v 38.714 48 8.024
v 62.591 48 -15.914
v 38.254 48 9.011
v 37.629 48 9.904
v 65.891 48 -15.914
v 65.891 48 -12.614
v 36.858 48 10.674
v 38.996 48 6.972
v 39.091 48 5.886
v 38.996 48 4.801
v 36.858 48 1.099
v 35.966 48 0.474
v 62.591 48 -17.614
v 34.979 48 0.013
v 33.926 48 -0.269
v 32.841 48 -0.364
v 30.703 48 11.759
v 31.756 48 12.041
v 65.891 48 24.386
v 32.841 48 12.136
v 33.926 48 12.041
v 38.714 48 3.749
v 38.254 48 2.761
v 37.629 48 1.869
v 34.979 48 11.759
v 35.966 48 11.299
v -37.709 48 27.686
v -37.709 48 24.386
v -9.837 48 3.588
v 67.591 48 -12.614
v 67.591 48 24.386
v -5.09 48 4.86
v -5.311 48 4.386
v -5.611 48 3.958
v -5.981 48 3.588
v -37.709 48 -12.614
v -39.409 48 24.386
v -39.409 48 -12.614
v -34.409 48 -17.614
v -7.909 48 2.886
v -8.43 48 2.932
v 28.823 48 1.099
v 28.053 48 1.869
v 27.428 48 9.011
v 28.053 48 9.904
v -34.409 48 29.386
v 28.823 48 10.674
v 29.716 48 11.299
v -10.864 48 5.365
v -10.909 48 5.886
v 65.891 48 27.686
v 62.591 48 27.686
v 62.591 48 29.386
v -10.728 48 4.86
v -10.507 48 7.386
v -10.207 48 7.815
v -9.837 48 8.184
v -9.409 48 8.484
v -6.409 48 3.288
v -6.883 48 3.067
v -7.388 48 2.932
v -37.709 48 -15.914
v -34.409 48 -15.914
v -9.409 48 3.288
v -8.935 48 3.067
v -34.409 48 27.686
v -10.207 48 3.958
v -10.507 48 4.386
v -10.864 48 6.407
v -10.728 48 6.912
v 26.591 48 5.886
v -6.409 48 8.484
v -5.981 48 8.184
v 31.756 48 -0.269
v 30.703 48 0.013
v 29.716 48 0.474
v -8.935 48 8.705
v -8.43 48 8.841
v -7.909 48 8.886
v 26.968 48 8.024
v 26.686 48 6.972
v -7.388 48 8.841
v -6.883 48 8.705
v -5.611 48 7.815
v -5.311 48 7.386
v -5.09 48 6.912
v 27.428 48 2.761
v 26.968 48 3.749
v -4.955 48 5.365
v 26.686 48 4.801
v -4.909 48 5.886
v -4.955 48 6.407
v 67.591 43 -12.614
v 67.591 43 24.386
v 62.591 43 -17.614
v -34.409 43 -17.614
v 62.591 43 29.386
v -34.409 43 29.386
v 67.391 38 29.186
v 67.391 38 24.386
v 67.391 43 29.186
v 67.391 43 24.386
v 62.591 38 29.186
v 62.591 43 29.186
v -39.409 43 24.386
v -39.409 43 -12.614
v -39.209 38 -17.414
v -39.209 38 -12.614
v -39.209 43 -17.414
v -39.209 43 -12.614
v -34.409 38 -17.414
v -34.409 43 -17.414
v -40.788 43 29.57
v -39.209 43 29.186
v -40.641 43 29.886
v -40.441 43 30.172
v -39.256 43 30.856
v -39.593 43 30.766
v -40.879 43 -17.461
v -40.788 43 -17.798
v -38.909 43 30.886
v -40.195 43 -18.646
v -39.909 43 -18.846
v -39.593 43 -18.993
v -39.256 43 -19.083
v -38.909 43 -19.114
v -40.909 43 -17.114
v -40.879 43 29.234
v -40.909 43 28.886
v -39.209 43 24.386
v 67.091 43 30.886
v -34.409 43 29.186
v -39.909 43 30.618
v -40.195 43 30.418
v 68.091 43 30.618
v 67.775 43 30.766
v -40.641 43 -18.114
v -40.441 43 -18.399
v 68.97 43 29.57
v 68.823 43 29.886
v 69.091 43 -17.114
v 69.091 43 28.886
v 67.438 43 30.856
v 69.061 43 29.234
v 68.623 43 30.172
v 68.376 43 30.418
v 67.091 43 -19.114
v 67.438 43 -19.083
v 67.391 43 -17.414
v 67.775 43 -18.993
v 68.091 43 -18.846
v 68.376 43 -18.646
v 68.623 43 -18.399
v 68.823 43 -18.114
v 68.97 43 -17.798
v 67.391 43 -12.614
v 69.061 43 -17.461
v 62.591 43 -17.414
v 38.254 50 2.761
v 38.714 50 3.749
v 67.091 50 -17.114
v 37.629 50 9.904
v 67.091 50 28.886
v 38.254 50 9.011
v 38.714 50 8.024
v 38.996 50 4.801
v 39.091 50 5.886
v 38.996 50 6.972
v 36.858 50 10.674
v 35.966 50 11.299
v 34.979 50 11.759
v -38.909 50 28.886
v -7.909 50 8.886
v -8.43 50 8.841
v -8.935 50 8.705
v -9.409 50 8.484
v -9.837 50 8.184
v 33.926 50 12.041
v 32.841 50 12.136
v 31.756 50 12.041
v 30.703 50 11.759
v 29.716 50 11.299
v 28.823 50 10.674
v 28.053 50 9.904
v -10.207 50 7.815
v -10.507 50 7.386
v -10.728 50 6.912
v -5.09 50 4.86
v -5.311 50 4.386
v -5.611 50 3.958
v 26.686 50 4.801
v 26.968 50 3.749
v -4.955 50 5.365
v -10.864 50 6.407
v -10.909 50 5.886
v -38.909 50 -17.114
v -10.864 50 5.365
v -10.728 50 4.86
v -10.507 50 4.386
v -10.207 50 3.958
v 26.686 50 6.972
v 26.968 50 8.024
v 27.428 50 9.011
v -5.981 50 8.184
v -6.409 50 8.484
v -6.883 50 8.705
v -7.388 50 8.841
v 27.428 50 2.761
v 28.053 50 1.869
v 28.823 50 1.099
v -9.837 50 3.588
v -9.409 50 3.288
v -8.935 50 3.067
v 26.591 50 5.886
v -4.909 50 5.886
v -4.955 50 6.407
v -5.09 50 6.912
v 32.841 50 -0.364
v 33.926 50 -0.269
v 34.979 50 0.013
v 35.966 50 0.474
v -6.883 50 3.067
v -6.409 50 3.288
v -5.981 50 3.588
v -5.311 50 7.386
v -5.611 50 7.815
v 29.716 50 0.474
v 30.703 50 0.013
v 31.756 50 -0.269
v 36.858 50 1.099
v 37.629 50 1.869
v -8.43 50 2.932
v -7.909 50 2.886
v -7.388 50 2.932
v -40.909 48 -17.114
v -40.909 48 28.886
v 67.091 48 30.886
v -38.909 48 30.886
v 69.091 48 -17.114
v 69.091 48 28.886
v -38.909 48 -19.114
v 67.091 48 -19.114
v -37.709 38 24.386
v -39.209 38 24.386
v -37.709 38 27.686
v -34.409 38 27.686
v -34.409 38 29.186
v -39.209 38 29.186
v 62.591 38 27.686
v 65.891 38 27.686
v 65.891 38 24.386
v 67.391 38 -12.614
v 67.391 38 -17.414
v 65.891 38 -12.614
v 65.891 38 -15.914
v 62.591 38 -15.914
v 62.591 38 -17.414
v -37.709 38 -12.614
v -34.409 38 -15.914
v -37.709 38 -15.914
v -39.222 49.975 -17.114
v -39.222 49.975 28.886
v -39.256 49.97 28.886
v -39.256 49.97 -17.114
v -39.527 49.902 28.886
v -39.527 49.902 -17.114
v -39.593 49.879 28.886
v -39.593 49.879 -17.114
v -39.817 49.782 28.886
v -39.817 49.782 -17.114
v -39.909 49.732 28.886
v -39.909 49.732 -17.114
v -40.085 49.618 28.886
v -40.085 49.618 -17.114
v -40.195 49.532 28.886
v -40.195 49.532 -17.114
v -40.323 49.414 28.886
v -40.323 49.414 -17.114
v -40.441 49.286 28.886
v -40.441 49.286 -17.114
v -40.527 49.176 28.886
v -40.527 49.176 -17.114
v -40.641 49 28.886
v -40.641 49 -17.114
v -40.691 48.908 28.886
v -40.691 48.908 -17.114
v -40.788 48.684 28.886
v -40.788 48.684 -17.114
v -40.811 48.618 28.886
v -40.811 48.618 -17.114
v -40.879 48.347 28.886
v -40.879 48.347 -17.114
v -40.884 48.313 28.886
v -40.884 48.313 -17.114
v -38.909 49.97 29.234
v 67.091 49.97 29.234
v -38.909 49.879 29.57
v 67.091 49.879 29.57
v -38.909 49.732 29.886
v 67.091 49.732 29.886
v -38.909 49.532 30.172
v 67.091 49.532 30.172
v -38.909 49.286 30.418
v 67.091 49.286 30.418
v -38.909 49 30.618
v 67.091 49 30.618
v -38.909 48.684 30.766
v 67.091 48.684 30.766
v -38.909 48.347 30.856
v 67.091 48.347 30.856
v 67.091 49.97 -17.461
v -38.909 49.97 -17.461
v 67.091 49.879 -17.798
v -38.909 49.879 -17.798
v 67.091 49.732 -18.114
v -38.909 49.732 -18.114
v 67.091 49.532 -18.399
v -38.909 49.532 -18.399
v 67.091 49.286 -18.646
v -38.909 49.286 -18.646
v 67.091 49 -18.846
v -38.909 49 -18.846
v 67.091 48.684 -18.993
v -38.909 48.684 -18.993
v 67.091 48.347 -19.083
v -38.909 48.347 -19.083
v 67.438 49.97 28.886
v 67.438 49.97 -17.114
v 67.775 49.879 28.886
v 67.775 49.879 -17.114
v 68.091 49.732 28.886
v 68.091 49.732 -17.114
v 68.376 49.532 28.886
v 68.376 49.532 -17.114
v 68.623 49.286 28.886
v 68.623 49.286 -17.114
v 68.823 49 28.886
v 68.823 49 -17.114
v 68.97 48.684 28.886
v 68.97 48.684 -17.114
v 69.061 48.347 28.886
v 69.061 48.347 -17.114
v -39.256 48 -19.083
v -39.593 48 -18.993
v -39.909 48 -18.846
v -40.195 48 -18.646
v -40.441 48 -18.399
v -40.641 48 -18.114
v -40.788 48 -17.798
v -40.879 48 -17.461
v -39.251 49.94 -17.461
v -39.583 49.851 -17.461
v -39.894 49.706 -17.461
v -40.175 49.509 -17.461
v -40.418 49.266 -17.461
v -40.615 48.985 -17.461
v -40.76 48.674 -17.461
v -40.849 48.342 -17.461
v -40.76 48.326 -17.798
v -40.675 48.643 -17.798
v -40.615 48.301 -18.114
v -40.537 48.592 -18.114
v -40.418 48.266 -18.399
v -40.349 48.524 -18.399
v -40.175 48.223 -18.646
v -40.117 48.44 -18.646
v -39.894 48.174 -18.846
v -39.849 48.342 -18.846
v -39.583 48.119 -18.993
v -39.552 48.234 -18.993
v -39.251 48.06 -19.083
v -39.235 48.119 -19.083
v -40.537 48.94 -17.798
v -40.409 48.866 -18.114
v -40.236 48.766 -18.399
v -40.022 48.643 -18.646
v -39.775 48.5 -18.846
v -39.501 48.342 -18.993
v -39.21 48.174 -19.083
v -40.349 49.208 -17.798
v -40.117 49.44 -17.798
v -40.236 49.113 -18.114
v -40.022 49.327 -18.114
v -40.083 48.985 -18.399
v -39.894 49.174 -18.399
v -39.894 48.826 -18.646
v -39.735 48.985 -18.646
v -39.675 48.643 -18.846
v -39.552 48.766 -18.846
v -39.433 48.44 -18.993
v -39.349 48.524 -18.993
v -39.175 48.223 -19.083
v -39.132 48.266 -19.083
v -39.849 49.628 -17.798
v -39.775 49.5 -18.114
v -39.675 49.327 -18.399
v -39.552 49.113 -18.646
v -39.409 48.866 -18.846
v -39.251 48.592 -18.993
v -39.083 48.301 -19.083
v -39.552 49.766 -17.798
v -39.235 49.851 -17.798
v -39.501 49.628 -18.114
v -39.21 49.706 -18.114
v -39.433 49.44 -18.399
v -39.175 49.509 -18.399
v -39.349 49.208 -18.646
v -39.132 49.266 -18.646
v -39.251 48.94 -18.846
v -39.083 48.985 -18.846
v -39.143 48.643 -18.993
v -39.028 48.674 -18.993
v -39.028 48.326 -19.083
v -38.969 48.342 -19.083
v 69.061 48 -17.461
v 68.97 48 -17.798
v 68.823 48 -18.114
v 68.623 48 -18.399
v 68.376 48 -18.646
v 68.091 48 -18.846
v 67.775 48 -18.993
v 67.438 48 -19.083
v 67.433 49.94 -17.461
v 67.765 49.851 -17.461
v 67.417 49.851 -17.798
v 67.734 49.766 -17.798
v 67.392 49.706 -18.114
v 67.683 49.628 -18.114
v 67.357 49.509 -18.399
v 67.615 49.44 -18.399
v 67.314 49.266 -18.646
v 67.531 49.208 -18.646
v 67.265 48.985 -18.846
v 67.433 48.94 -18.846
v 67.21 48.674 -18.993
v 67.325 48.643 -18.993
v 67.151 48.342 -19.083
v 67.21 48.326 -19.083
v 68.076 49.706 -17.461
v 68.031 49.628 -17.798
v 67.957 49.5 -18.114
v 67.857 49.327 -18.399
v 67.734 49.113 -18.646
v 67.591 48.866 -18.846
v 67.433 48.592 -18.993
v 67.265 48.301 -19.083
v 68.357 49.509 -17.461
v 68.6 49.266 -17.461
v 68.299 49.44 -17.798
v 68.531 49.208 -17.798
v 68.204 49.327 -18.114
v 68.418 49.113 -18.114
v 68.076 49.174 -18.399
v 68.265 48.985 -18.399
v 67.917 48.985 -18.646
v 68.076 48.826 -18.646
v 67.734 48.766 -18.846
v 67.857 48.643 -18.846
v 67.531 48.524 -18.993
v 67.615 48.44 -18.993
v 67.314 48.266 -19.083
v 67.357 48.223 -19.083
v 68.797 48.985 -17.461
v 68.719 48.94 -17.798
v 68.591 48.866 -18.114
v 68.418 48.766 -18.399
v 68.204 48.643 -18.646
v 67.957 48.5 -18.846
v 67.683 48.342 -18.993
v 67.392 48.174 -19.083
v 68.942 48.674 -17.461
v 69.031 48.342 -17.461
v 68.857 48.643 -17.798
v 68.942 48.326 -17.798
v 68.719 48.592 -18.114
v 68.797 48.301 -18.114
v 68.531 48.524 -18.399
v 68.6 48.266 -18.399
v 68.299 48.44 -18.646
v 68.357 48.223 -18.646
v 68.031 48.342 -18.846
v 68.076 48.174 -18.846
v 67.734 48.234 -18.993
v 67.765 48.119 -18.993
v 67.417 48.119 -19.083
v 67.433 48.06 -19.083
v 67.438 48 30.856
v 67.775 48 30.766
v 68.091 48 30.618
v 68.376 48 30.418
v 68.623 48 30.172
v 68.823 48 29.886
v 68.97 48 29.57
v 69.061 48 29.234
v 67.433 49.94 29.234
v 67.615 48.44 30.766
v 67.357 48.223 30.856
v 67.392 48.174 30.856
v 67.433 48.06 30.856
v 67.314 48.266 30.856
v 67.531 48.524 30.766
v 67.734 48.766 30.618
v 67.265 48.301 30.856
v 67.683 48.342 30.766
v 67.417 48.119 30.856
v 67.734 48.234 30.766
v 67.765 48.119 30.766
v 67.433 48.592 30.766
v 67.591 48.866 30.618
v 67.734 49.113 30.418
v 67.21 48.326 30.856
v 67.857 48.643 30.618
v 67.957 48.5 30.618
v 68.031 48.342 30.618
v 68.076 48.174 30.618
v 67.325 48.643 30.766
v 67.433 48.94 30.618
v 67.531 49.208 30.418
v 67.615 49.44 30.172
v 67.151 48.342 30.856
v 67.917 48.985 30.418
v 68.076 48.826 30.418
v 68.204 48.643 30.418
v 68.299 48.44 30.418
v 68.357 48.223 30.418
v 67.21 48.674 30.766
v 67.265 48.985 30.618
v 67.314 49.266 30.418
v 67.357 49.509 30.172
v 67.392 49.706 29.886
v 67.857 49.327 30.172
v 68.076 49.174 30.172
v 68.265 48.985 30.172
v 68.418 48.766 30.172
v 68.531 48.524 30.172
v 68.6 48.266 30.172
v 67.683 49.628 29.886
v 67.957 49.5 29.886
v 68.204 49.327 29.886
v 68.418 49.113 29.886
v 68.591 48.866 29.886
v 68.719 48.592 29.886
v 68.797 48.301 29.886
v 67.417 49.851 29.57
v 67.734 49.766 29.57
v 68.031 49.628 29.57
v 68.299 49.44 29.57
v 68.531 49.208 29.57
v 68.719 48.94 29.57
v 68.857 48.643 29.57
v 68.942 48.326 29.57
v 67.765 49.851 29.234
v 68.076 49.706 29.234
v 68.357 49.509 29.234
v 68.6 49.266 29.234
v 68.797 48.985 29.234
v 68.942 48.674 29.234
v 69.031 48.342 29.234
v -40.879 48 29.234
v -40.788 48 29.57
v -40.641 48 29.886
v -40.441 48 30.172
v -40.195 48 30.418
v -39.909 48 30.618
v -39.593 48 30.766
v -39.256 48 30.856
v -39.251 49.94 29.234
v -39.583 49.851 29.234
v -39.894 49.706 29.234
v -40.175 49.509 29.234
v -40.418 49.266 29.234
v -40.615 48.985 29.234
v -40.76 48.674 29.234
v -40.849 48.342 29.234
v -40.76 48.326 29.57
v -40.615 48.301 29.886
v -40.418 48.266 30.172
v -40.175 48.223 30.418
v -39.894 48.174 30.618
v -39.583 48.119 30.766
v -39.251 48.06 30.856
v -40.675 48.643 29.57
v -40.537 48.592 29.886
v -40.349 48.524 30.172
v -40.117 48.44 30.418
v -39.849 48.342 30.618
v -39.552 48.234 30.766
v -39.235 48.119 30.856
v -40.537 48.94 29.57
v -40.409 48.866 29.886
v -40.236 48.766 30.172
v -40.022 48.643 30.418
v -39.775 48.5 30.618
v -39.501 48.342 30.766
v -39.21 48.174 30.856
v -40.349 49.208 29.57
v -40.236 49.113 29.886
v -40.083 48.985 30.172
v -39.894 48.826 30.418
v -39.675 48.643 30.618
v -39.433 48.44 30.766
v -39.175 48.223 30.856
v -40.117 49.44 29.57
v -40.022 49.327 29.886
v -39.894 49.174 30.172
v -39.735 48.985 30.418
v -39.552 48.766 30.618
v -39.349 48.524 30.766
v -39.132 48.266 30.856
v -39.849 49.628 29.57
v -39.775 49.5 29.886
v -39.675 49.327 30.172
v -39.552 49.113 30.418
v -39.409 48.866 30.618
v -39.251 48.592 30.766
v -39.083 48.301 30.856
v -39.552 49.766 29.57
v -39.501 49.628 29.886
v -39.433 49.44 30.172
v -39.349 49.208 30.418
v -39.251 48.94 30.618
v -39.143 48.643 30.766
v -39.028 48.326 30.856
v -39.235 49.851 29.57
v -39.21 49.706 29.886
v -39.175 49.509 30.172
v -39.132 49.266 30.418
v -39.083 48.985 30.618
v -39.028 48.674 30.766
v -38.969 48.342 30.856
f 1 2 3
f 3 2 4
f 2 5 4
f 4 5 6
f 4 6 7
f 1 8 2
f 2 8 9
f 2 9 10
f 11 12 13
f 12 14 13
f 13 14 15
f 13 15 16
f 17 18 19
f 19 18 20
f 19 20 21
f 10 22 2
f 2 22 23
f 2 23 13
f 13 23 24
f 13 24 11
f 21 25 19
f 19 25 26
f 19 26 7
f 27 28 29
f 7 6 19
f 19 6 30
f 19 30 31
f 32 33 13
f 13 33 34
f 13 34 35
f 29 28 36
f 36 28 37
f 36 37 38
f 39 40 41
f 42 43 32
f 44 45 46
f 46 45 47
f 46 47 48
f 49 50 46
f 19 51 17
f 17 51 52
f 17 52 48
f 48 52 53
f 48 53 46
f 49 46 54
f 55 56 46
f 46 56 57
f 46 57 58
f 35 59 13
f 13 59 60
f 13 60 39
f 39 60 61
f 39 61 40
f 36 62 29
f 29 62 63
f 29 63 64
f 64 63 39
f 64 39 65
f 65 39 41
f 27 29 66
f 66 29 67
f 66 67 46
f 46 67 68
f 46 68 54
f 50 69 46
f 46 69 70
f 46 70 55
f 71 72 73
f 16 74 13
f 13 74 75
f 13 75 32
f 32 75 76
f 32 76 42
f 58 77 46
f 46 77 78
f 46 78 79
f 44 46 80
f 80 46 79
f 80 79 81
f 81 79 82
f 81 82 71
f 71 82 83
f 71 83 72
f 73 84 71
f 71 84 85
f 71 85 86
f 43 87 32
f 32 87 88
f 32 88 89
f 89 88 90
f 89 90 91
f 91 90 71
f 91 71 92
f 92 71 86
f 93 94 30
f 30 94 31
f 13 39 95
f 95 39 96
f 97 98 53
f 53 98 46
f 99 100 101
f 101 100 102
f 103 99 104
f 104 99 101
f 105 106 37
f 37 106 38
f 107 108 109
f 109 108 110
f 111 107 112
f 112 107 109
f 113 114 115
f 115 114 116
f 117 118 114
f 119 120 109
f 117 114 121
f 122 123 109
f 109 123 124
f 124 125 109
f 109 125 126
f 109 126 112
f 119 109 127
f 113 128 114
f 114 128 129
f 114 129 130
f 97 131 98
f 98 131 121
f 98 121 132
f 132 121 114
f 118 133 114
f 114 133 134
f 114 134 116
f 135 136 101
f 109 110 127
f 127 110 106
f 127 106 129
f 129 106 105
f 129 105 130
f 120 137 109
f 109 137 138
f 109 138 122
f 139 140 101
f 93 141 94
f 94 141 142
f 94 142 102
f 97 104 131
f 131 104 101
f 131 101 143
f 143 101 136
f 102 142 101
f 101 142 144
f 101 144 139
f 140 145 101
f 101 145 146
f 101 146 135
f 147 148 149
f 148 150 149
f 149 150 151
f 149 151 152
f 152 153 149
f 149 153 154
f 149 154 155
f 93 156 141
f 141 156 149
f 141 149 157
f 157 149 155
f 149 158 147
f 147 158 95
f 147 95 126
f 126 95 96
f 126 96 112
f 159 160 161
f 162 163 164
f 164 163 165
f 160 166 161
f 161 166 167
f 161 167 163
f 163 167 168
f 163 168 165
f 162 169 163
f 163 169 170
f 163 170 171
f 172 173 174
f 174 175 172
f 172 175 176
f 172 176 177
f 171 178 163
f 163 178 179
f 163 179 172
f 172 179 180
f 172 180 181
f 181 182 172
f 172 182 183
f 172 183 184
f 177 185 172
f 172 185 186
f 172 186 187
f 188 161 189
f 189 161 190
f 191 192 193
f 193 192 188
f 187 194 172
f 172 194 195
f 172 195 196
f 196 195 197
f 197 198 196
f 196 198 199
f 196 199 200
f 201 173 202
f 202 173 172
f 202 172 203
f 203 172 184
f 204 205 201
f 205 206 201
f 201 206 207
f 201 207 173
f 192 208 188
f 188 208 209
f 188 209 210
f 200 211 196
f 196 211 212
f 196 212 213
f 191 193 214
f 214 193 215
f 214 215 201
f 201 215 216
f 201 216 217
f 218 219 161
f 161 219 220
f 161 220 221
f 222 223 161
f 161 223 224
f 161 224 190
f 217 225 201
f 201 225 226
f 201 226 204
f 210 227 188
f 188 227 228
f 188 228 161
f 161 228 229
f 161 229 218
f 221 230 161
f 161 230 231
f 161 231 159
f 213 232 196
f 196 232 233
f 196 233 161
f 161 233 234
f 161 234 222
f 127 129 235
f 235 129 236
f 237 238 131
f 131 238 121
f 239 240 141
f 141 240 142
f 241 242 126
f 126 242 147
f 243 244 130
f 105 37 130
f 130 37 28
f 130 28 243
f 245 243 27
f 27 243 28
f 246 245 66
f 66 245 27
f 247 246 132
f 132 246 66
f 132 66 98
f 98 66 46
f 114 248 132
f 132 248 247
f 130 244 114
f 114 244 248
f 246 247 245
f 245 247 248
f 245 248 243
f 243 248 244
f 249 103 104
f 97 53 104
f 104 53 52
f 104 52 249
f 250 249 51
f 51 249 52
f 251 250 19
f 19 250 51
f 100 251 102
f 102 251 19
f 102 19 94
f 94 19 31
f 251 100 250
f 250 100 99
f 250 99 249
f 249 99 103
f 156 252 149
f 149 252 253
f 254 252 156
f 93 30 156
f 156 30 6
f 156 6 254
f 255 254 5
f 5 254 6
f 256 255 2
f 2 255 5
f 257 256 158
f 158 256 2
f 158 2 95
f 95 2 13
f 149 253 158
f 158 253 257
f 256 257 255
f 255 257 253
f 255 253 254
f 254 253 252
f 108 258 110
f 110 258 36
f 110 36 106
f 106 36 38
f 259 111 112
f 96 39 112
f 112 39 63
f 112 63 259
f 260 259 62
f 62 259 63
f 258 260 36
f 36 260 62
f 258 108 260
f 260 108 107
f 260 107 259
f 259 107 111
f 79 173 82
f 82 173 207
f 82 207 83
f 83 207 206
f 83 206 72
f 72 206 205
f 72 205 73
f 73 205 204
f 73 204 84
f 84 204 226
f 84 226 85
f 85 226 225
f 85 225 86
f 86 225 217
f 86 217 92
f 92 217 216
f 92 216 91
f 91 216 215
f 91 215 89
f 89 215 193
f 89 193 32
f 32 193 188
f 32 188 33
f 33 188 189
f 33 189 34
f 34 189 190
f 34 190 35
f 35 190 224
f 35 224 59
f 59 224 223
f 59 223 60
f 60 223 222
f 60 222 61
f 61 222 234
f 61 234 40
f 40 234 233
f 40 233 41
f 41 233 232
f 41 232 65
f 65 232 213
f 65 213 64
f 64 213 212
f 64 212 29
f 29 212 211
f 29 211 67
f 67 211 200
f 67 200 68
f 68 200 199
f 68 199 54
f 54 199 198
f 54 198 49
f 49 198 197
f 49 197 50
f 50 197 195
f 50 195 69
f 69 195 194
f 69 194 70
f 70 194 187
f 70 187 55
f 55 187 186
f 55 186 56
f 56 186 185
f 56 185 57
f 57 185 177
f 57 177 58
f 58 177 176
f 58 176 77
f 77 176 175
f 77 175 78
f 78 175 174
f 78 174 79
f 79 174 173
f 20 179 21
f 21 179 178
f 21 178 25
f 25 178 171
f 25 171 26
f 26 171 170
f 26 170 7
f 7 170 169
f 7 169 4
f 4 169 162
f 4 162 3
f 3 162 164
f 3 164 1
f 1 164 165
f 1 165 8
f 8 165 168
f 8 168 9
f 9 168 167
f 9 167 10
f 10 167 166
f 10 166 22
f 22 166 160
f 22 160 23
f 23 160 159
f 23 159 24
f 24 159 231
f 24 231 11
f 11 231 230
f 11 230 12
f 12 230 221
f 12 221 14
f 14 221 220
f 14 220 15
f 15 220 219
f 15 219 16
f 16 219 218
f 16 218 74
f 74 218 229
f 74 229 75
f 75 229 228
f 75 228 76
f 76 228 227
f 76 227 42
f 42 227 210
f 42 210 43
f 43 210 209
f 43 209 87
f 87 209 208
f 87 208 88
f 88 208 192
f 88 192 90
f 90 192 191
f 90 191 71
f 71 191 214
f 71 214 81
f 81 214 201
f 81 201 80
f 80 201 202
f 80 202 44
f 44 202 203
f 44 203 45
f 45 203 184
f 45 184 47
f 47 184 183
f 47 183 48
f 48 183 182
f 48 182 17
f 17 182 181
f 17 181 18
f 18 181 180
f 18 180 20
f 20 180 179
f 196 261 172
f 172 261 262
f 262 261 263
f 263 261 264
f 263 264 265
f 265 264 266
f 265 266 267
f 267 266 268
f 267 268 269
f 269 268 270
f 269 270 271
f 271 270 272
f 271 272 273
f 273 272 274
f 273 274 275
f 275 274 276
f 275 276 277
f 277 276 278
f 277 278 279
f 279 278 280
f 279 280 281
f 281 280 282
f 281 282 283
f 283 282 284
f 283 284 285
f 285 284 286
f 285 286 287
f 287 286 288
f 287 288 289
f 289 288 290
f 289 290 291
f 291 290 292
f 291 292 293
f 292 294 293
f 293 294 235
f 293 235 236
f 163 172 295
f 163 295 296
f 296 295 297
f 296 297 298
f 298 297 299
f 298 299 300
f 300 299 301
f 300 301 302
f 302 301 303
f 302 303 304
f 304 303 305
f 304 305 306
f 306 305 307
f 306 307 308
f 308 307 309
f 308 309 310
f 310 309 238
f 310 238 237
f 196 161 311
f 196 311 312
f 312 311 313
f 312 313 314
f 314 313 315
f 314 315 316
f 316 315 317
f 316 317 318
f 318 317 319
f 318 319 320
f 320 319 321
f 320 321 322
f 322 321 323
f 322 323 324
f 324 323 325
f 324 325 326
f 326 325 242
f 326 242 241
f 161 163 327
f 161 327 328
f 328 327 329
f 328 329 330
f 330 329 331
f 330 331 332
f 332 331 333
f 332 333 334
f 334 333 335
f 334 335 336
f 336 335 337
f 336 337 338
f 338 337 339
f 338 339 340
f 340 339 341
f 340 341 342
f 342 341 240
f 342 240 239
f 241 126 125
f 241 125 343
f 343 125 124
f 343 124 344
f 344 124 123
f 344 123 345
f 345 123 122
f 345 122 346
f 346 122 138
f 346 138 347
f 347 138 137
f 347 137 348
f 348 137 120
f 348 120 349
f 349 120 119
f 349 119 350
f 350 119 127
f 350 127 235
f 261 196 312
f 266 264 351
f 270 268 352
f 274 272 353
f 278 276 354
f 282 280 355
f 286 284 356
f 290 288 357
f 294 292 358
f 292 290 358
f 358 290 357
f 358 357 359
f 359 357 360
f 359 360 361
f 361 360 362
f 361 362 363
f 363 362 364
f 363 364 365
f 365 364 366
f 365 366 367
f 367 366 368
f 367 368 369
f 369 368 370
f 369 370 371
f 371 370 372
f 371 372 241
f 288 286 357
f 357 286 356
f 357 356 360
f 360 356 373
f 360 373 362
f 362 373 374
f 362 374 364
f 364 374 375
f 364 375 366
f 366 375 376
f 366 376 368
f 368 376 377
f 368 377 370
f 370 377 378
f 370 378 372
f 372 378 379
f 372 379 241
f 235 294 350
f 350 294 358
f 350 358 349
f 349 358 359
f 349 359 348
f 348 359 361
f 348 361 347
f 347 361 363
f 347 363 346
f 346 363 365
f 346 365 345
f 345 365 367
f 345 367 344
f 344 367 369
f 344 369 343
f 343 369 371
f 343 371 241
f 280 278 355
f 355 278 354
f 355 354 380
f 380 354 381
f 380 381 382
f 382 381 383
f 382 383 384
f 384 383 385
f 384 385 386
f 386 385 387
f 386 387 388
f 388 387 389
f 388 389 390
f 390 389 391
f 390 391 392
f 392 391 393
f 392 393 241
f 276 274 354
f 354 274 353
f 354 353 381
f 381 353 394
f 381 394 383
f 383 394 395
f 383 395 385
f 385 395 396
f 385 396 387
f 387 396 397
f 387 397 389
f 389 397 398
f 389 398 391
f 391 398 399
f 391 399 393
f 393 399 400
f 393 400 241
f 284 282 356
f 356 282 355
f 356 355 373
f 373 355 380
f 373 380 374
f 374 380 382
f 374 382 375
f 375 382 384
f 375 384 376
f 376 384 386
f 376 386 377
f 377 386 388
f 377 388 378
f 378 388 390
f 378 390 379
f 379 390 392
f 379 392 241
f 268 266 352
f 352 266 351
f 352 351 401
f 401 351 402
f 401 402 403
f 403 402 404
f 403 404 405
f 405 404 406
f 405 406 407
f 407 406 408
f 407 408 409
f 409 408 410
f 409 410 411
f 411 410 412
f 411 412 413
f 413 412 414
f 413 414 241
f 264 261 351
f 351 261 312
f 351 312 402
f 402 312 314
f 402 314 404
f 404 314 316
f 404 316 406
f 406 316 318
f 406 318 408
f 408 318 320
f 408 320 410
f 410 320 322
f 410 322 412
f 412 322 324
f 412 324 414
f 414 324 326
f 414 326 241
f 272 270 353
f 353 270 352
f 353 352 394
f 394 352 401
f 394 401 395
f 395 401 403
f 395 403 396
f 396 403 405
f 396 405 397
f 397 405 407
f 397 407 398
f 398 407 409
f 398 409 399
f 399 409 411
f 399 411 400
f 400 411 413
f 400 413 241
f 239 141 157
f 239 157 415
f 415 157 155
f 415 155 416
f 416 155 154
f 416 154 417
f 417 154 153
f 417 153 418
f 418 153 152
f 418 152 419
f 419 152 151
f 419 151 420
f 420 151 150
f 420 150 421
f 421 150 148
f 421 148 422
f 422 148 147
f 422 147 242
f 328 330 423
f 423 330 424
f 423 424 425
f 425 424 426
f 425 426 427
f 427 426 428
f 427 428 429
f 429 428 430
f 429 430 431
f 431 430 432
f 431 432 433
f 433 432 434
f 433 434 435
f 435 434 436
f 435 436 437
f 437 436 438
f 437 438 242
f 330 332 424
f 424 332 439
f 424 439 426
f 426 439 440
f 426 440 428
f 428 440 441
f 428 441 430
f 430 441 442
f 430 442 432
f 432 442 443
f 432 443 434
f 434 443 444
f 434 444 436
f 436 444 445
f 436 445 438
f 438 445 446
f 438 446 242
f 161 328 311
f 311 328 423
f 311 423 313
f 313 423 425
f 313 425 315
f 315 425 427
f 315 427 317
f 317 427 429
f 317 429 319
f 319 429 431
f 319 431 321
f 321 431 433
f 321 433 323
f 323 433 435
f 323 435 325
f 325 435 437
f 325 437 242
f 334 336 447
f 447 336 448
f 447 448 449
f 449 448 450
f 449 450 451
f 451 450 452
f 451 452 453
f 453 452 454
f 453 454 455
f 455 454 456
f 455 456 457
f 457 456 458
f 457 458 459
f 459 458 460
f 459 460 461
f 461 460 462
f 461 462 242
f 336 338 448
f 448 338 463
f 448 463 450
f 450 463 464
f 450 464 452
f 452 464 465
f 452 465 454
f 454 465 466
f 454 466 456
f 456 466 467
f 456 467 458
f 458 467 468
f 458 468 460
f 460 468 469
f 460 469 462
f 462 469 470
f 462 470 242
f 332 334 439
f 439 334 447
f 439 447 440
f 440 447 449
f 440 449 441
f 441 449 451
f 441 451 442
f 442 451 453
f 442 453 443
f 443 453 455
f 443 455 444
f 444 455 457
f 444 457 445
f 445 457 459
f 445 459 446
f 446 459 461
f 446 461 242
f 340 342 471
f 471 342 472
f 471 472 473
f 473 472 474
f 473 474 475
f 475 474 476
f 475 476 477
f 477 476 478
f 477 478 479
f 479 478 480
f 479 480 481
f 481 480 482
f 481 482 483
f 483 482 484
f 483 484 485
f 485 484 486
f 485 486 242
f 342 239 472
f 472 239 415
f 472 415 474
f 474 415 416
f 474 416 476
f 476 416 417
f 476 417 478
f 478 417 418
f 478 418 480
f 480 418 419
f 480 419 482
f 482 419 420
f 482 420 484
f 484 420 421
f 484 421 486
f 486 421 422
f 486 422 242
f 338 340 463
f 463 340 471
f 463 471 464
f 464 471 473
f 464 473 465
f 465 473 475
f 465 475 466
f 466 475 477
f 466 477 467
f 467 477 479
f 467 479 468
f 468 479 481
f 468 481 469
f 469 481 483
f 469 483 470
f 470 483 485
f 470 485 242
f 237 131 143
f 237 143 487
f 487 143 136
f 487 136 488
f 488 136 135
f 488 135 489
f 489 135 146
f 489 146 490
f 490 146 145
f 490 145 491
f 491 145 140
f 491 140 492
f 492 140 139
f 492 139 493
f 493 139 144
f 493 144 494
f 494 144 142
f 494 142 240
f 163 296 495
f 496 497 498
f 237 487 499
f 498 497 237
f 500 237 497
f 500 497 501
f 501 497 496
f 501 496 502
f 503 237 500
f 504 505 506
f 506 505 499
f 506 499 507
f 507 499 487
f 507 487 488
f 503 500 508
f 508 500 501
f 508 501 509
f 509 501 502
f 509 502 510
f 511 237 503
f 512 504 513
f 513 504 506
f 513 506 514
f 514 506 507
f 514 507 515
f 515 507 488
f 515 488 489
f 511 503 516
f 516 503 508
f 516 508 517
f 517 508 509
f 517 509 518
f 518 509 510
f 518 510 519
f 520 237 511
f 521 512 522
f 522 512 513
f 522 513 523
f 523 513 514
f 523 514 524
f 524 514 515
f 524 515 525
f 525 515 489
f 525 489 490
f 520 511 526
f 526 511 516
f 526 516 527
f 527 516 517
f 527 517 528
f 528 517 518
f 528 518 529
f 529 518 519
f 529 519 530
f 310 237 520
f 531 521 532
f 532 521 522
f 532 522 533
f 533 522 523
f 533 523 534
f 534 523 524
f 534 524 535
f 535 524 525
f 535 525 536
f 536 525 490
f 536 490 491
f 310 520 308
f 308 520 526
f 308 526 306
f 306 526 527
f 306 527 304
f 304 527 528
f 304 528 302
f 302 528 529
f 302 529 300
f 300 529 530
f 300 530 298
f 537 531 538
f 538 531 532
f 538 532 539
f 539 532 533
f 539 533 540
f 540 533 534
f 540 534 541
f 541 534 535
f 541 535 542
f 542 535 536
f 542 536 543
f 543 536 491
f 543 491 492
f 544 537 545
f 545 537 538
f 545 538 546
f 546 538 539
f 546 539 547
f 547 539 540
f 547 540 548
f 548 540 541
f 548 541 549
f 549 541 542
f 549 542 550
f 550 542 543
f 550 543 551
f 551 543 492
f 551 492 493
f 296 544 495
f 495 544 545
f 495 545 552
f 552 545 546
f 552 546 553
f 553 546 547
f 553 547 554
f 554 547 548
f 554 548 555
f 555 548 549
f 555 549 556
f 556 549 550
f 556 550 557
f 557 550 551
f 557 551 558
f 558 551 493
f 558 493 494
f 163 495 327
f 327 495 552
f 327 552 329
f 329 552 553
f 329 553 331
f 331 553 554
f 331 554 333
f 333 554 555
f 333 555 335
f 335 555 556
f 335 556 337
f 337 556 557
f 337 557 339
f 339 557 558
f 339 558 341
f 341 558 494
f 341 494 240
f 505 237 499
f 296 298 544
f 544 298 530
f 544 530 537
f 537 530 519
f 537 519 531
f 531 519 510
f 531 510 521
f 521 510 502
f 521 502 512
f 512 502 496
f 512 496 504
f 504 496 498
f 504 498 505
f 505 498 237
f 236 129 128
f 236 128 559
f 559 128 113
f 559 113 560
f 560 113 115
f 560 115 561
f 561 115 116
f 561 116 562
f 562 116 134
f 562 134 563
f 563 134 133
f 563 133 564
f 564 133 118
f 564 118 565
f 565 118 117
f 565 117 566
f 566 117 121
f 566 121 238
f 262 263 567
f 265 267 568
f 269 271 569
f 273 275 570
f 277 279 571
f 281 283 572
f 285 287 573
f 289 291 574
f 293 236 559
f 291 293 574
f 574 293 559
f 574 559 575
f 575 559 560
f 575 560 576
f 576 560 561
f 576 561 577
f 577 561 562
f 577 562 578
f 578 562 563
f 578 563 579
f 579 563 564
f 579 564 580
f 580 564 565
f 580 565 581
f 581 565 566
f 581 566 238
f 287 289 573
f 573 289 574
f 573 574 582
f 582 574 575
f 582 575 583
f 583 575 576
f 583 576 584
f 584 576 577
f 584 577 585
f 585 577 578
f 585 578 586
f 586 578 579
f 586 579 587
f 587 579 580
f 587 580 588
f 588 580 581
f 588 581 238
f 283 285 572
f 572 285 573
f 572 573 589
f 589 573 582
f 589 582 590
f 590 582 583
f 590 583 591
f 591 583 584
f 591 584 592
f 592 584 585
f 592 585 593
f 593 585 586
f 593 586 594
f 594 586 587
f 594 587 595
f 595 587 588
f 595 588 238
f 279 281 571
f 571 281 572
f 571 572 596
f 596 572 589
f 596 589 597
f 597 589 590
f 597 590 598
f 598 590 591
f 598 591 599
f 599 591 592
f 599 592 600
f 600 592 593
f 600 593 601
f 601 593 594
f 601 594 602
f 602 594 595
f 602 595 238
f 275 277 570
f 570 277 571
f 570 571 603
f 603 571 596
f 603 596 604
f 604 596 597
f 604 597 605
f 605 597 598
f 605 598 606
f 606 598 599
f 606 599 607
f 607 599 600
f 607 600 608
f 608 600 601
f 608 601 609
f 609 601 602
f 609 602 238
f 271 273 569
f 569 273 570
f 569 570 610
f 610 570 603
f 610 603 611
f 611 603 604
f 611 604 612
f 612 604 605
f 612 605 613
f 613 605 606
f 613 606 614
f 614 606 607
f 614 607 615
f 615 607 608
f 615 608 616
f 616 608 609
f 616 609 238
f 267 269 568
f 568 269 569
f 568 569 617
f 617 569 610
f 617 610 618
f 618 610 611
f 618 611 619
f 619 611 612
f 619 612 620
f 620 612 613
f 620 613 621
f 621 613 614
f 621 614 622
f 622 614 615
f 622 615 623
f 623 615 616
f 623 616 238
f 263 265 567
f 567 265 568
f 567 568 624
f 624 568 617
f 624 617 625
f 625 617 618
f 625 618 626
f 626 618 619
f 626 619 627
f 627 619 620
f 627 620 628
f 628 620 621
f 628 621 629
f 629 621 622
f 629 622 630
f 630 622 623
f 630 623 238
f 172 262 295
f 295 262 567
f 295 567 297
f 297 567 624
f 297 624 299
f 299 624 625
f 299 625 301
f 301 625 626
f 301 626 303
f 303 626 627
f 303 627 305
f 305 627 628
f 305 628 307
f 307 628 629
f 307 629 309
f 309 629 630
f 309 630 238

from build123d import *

# Parameters (mm, degrees)
STOCK_FULL_START                 = 48
STOCK_FULL_SHAPE_1_OUTLINE_W     = 110
STOCK_FULL_SHAPE_1_OUTLINE_H     = 50
STOCK_FULL_SHAPE_1_DEPTH         = 2
STOCK_FULL_START_2               = 45
STOCK_FULL_SHAPE_1_2_OUTLINE_W   = 110
STOCK_FULL_SHAPE_1_2_OUTLINE_H   = 50
STOCK_FULL_SHAPE_1_2_OUTLINE_W_2 = 107
STOCK_FULL_SHAPE_1_2_OUTLINE_H_2 = 47
STOCK_FULL_SHAPE_1_2_DEPTH       = 3
SKETCH1_W                        = 110
SKETCH1_H                        = 50
SKETCH1_W_2                      = 107
SKETCH1_H_2                      = 47
BOSS_EXTRUDE1_DEPTH              = 2
BOSS_EXTRUDE2_DEPTH              = 10
BOSS_EXTRUDE3_DEPTH              = 5
SKETCH6_R                        = 6.25
SKETCH6_R_2                      = 3
CUT_EXTRUDE1_DEPTH               = 5
FILLET1_R                        = 2
FILLET2_R                        = 2


# Read off the part's stored shape, not the designer's step: Stock-full shape-1
with BuildPart() as part:
    # Stock-full shape-1 outline → Stock-full shape-1 (new body)
    with BuildSketch(Plane(origin=(0, 0, 0), x_dir=(1, 0, 0), z_dir=(0, 1, 0)).offset(STOCK_FULL_START)):
        with Locations((14.090909091, -5.886363636)):
            Rectangle(STOCK_FULL_SHAPE_1_OUTLINE_W, STOCK_FULL_SHAPE_1_OUTLINE_H)
    extrude(amount=STOCK_FULL_SHAPE_1_DEPTH)

    # Stock-full shape-1 2 outline → Stock-full shape-1 2 (add)
    with BuildSketch(Plane(origin=(0, 0, 0), x_dir=(1, 0, 0), z_dir=(0, 1, 0)).offset(STOCK_FULL_START_2)):
        with Locations((14.090909091, -5.886363636)):
            Rectangle(STOCK_FULL_SHAPE_1_2_OUTLINE_W, STOCK_FULL_SHAPE_1_2_OUTLINE_H)
        with Locations((14.090909091, -5.886363636)):
            Rectangle(STOCK_FULL_SHAPE_1_2_OUTLINE_W_2, STOCK_FULL_SHAPE_1_2_OUTLINE_H_2, mode=Mode.SUBTRACT)
    extrude(amount=STOCK_FULL_SHAPE_1_2_DEPTH)

    # Sketch1 → Boss-Extrude1 (add)
    with BuildSketch(Plane(origin=(0, 45, 0), x_dir=(-1, 0, 0), z_dir=(0, -1, 0))):
        with Locations((-14.090909091, -5.886363636)):
            Rectangle(SKETCH1_W, SKETCH1_H)
        with Locations((-14.090909091, -5.886363636)):
            Rectangle(SKETCH1_W_2, SKETCH1_H_2, mode=Mode.SUBTRACT)
    extrude(amount=BOSS_EXTRUDE1_DEPTH)

    # Sketch3 → Boss-Extrude2 (add)
    with BuildSketch(Plane.XZ.offset(-48)):
        Polygon((-39.209090909, 24.386363636), (-39.209090909, 29.186363636), (-34.409090909, 29.186363636), (-34.409090909, 27.686363636), (-37.709090909, 27.686363636), (-37.709090909, 24.386363636), align=None)
        Polygon((62.590909091, 29.186363636), (67.390909091, 29.186363636), (67.390909091, 24.386363636), (65.890909091, 24.386363636), (65.890909091, 27.686363636), (62.590909091, 27.686363636), align=None)
        Polygon((67.390909091, -12.613636364), (65.890909091, -12.613636364), (65.890909091, -15.913636364), (62.590909091, -15.913636364), (62.590909091, -17.413636364), (67.390909091, -17.413636364), align=None)
        Polygon((-39.209090909, -12.613636364), (-39.209090909, -17.413636364), (-34.409090909, -17.413636364), (-34.409090909, -15.913636364), (-37.709090909, -15.913636364), (-37.709090909, -12.613636364), align=None)
    extrude(amount=BOSS_EXTRUDE2_DEPTH)

    # Sketch5 → Boss-Extrude3 (add)
    with BuildSketch(Plane.XZ.offset(-48)):
        Polygon((-39.209090909, -12.613636364), (-39.209090909, -17.413636364), (-34.409090909, -17.413636364), (-34.409090909, -17.613636364), (-39.409090909, -17.613636364), (-39.409090909, -12.613636364), align=None)
        Polygon((-39.409090909, 24.386363636), (-39.209090909, 24.386363636), (-39.209090909, 29.186363636), (-34.409090909, 29.186363636), (-34.409090909, 29.386363636), (-39.409090909, 29.386363636), align=None)
        Polygon((67.590909091, 24.386363636), (67.390909091, 24.386363636), (67.390909091, 29.186363636), (62.590909091, 29.186363636), (62.590909091, 29.386363636), (67.590909091, 29.386363636), align=None)
        Polygon((67.390909091, -17.413636364), (67.390909091, -12.613636364), (67.590909091, -12.613636364), (67.590909091, -17.613636364), (62.590909091, -17.613636364), (62.590909091, -17.413636364), align=None)
    extrude(amount=BOSS_EXTRUDE3_DEPTH)

    # Sketch6 → Cut-Extrude1 (cut)
    with BuildSketch(Plane(origin=(0, 50, 0), x_dir=(1, 0, 0), z_dir=(0, 1, 0))):
        with Locations(Location((32.840909091, -5.886363636, 0), (0, 0, 270))):
            Circle(SKETCH6_R)
        with Locations(Location((-7.909090909, -5.886363636, 0), (0, 0, 270))):
            Circle(SKETCH6_R_2)
    extrude(amount=-CUT_EXTRUDE1_DEPTH, mode=Mode.SUBTRACT)

    # Fillet1
    fillet1_edges = [part.edges().sort_by_distance(p)[0] for p in [
        (-40.909090909, 50, 5.886363636),
        (14.090909091, 50, 30.886363636),
        (69.090909091, 50, 5.886363636),
        (14.090909091, 50, -19.113636364),
    ]]
    fillet(fillet1_edges, radius=FILLET1_R)

    # Fillet2
    # the kernel refuses this fillet: 2 mm, written as the material it takes off along each edge
    with BuildSketch(Plane(origin=(-38.909090909, 48, 28.886363636), x_dir=(0, 0, 1), z_dir=(-1, 0, 0))) as fillet2_piece_1_section:
        Polygon((0, 0), (FILLET2_R, 0), (FILLET2_R, FILLET2_R), (0, FILLET2_R), align=None)
    fillet2_piece_1 = extrude(amount=FILLET2_R, mode=Mode.PRIVATE)
    fillet2_piece_1 = fillet2_piece_1 - Plane(origin=(-38.909090909, 48, 28.886363636), x_dir=(0, -0.7071067811865475, -0.7071067811865475), z_dir=(-1, 0, 0)) * Sphere(FILLET2_R, mode=Mode.PRIVATE)
    add(fillet2_piece_1, mode=Mode.SUBTRACT)
    with BuildSketch(Plane(origin=(-38.909090909, 48, -17.113636364), x_dir=(0, 0, -1), z_dir=(-1, 0, 0))) as fillet2_piece_2_section:
        Polygon((0, 0), (FILLET2_R, 0), (FILLET2_R, -FILLET2_R), (0, -FILLET2_R), align=None)
    fillet2_piece_2 = extrude(amount=FILLET2_R, mode=Mode.PRIVATE)
    fillet2_piece_2 = fillet2_piece_2 - Plane(origin=(-38.909090909, 48, -17.113636364), x_dir=(0, -0.7071067811865475, 0.7071067811865475), z_dir=(-1, 0, 0)) * Sphere(FILLET2_R, mode=Mode.PRIVATE)
    add(fillet2_piece_2, mode=Mode.SUBTRACT)
    with BuildSketch(Plane(origin=(67.090909091, 48, 28.886363636), x_dir=(1, 0, 0), z_dir=(0, 0, 1))) as fillet2_piece_3_section:
        Polygon((0, 0), (FILLET2_R, 0), (FILLET2_R, FILLET2_R), (0, FILLET2_R), align=None)
    fillet2_piece_3 = extrude(amount=FILLET2_R, mode=Mode.PRIVATE)
    fillet2_piece_3 = fillet2_piece_3 - Plane(origin=(67.090909091, 48, 28.886363636), x_dir=(-0.7071067811865475, -0.7071067811865475, 0), z_dir=(0, 0, 1)) * Sphere(FILLET2_R, mode=Mode.PRIVATE)
    add(fillet2_piece_3, mode=Mode.SUBTRACT)
    with BuildSketch(Plane(origin=(67.090909091, 48, -17.113636364), x_dir=(1, 0, 0), z_dir=(0, 0, -1))) as fillet2_piece_4_section:
        Polygon((0, 0), (FILLET2_R, 0), (FILLET2_R, -FILLET2_R), (0, -FILLET2_R), align=None)
    fillet2_piece_4 = extrude(amount=FILLET2_R, mode=Mode.PRIVATE)
    fillet2_piece_4 = fillet2_piece_4 - Plane(origin=(67.090909091, 48, -17.113636364), x_dir=(-0.7071067811865475, -0.7071067811865475, 0), z_dir=(0, 0, -1)) * Sphere(FILLET2_R, mode=Mode.PRIVATE)
    add(fillet2_piece_4, mode=Mode.SUBTRACT)
    with BuildSketch(Plane(origin=(69.090909091, 45, 30.886363636), x_dir=(-1, 0, 0), z_dir=(0, 1, 0)), Plane(origin=(69.090909091, 48, -19.113636364), x_dir=(-1, 0, 0), z_dir=(0, -1, 0)), Plane(origin=(-40.909090909, 45, 30.886363636), x_dir=(0, 0, -1), z_dir=(0, 1, 0))) as fillet2_piece_5:
        with BuildLine():
            CenterArc((FILLET2_R, -FILLET2_R), FILLET2_R, 90, 90)
            Line((0, -FILLET2_R), (0, 0))
            Line((0, 0), (FILLET2_R, 0))
        make_face()
    extrude(amount=3, mode=Mode.SUBTRACT)
    with BuildSketch(Plane(origin=(-40.909090909, 48, -19.113636364), x_dir=(1.2985168496859017e-11, 5.194777941125234e-11, 1.0), z_dir=(-1.2986691087592473e-11, -1.0, 5.1947779411420976e-11))) as fillet2_piece_6:
        with BuildLine():
            CenterArc((FILLET2_R, -FILLET2_R), FILLET2_R, 90.000000001, 90)
            Line((0, -FILLET2_R), (0, 0))
            Line((0, 0), (FILLET2_R, 0))
        make_face()
    extrude(amount=10, mode=Mode.SUBTRACT)
    with BuildSketch(Plane(origin=(-40.909090909, 45, 30.886363636), x_dir=(4.545341879830931e-11, 0, -1.0), z_dir=(0, -1, 0)), Plane(origin=(69.090909091, 45, 30.886363636), x_dir=(-1.0, 0, -1.8181900430507692e-10), z_dir=(0, -1, 0))) as fillet2_piece_7:
        with BuildLine():
            CenterArc((FILLET2_R, FILLET2_R), FILLET2_R, 179.999999997, 90)
            Line((FILLET2_R * 2.27272423097e-10, FILLET2_R), (0, 0))
            Line((0, 0), (FILLET2_R, 0))
        make_face()
    extrude(amount=7.000000001, mode=Mode.SUBTRACT)
    with BuildSketch(Plane(origin=(69.090909091, 45, -19.113636364), x_dir=(-1.0, 0, -1.8181722794823744e-10), z_dir=(0, -1, 0))) as fillet2_piece_8:
        with BuildLine():
            CenterArc((FILLET2_R, -FILLET2_R), FILLET2_R, 89.99999999, 90)
            Line((-FILLET2_R * 2.27270646722e-10, -FILLET2_R), (0, 0))
            Line((0, 0), (FILLET2_R, 0))
        make_face()
    extrude(amount=7, mode=Mode.SUBTRACT)


solid = part.part
